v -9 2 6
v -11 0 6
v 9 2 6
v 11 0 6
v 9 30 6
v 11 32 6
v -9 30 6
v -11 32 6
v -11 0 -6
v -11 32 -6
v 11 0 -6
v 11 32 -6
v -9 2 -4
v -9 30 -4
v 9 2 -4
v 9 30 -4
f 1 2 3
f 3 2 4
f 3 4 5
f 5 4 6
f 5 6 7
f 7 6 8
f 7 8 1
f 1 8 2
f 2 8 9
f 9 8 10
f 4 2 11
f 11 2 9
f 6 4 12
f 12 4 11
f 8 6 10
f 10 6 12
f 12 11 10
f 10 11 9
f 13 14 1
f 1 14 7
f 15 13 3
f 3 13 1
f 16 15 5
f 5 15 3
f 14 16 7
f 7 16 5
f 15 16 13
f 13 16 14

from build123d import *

# Parameters (mm, degrees)
BOSS_EXTRUDE1_START = -6
SKETCH1_W           = 22
SKETCH1_H           = 32
BOSS_EXTRUDE1_DEPTH = 12
BOSS_EXTRUDE2_START = -4
SKETCH2_W           = 18
SKETCH2_H           = 28
BOSS_EXTRUDE2_DEPTH = 11


with BuildPart() as part:
    # Sketch1 → Boss-Extrude1 (new body)
    with BuildSketch(Plane.XY.offset(BOSS_EXTRUDE1_START)):
        with Locations((0, 16)):
            Rectangle(SKETCH1_W, SKETCH1_H)
    extrude(amount=BOSS_EXTRUDE1_DEPTH)


with BuildPart() as body_2:
    # Sketch2 → Boss-Extrude2 (new body)
    with BuildSketch(Plane.XY.offset(BOSS_EXTRUDE2_START)):
        with Locations((0, 16)):
            Rectangle(SKETCH2_W, SKETCH2_H)
    extrude(amount=BOSS_EXTRUDE2_DEPTH)


with BuildPart() as part_1:
    add(part.part)

    # Combine1: cut body 2
    add(body_2.part, mode=Mode.SUBTRACT)


solid = part_1.part
